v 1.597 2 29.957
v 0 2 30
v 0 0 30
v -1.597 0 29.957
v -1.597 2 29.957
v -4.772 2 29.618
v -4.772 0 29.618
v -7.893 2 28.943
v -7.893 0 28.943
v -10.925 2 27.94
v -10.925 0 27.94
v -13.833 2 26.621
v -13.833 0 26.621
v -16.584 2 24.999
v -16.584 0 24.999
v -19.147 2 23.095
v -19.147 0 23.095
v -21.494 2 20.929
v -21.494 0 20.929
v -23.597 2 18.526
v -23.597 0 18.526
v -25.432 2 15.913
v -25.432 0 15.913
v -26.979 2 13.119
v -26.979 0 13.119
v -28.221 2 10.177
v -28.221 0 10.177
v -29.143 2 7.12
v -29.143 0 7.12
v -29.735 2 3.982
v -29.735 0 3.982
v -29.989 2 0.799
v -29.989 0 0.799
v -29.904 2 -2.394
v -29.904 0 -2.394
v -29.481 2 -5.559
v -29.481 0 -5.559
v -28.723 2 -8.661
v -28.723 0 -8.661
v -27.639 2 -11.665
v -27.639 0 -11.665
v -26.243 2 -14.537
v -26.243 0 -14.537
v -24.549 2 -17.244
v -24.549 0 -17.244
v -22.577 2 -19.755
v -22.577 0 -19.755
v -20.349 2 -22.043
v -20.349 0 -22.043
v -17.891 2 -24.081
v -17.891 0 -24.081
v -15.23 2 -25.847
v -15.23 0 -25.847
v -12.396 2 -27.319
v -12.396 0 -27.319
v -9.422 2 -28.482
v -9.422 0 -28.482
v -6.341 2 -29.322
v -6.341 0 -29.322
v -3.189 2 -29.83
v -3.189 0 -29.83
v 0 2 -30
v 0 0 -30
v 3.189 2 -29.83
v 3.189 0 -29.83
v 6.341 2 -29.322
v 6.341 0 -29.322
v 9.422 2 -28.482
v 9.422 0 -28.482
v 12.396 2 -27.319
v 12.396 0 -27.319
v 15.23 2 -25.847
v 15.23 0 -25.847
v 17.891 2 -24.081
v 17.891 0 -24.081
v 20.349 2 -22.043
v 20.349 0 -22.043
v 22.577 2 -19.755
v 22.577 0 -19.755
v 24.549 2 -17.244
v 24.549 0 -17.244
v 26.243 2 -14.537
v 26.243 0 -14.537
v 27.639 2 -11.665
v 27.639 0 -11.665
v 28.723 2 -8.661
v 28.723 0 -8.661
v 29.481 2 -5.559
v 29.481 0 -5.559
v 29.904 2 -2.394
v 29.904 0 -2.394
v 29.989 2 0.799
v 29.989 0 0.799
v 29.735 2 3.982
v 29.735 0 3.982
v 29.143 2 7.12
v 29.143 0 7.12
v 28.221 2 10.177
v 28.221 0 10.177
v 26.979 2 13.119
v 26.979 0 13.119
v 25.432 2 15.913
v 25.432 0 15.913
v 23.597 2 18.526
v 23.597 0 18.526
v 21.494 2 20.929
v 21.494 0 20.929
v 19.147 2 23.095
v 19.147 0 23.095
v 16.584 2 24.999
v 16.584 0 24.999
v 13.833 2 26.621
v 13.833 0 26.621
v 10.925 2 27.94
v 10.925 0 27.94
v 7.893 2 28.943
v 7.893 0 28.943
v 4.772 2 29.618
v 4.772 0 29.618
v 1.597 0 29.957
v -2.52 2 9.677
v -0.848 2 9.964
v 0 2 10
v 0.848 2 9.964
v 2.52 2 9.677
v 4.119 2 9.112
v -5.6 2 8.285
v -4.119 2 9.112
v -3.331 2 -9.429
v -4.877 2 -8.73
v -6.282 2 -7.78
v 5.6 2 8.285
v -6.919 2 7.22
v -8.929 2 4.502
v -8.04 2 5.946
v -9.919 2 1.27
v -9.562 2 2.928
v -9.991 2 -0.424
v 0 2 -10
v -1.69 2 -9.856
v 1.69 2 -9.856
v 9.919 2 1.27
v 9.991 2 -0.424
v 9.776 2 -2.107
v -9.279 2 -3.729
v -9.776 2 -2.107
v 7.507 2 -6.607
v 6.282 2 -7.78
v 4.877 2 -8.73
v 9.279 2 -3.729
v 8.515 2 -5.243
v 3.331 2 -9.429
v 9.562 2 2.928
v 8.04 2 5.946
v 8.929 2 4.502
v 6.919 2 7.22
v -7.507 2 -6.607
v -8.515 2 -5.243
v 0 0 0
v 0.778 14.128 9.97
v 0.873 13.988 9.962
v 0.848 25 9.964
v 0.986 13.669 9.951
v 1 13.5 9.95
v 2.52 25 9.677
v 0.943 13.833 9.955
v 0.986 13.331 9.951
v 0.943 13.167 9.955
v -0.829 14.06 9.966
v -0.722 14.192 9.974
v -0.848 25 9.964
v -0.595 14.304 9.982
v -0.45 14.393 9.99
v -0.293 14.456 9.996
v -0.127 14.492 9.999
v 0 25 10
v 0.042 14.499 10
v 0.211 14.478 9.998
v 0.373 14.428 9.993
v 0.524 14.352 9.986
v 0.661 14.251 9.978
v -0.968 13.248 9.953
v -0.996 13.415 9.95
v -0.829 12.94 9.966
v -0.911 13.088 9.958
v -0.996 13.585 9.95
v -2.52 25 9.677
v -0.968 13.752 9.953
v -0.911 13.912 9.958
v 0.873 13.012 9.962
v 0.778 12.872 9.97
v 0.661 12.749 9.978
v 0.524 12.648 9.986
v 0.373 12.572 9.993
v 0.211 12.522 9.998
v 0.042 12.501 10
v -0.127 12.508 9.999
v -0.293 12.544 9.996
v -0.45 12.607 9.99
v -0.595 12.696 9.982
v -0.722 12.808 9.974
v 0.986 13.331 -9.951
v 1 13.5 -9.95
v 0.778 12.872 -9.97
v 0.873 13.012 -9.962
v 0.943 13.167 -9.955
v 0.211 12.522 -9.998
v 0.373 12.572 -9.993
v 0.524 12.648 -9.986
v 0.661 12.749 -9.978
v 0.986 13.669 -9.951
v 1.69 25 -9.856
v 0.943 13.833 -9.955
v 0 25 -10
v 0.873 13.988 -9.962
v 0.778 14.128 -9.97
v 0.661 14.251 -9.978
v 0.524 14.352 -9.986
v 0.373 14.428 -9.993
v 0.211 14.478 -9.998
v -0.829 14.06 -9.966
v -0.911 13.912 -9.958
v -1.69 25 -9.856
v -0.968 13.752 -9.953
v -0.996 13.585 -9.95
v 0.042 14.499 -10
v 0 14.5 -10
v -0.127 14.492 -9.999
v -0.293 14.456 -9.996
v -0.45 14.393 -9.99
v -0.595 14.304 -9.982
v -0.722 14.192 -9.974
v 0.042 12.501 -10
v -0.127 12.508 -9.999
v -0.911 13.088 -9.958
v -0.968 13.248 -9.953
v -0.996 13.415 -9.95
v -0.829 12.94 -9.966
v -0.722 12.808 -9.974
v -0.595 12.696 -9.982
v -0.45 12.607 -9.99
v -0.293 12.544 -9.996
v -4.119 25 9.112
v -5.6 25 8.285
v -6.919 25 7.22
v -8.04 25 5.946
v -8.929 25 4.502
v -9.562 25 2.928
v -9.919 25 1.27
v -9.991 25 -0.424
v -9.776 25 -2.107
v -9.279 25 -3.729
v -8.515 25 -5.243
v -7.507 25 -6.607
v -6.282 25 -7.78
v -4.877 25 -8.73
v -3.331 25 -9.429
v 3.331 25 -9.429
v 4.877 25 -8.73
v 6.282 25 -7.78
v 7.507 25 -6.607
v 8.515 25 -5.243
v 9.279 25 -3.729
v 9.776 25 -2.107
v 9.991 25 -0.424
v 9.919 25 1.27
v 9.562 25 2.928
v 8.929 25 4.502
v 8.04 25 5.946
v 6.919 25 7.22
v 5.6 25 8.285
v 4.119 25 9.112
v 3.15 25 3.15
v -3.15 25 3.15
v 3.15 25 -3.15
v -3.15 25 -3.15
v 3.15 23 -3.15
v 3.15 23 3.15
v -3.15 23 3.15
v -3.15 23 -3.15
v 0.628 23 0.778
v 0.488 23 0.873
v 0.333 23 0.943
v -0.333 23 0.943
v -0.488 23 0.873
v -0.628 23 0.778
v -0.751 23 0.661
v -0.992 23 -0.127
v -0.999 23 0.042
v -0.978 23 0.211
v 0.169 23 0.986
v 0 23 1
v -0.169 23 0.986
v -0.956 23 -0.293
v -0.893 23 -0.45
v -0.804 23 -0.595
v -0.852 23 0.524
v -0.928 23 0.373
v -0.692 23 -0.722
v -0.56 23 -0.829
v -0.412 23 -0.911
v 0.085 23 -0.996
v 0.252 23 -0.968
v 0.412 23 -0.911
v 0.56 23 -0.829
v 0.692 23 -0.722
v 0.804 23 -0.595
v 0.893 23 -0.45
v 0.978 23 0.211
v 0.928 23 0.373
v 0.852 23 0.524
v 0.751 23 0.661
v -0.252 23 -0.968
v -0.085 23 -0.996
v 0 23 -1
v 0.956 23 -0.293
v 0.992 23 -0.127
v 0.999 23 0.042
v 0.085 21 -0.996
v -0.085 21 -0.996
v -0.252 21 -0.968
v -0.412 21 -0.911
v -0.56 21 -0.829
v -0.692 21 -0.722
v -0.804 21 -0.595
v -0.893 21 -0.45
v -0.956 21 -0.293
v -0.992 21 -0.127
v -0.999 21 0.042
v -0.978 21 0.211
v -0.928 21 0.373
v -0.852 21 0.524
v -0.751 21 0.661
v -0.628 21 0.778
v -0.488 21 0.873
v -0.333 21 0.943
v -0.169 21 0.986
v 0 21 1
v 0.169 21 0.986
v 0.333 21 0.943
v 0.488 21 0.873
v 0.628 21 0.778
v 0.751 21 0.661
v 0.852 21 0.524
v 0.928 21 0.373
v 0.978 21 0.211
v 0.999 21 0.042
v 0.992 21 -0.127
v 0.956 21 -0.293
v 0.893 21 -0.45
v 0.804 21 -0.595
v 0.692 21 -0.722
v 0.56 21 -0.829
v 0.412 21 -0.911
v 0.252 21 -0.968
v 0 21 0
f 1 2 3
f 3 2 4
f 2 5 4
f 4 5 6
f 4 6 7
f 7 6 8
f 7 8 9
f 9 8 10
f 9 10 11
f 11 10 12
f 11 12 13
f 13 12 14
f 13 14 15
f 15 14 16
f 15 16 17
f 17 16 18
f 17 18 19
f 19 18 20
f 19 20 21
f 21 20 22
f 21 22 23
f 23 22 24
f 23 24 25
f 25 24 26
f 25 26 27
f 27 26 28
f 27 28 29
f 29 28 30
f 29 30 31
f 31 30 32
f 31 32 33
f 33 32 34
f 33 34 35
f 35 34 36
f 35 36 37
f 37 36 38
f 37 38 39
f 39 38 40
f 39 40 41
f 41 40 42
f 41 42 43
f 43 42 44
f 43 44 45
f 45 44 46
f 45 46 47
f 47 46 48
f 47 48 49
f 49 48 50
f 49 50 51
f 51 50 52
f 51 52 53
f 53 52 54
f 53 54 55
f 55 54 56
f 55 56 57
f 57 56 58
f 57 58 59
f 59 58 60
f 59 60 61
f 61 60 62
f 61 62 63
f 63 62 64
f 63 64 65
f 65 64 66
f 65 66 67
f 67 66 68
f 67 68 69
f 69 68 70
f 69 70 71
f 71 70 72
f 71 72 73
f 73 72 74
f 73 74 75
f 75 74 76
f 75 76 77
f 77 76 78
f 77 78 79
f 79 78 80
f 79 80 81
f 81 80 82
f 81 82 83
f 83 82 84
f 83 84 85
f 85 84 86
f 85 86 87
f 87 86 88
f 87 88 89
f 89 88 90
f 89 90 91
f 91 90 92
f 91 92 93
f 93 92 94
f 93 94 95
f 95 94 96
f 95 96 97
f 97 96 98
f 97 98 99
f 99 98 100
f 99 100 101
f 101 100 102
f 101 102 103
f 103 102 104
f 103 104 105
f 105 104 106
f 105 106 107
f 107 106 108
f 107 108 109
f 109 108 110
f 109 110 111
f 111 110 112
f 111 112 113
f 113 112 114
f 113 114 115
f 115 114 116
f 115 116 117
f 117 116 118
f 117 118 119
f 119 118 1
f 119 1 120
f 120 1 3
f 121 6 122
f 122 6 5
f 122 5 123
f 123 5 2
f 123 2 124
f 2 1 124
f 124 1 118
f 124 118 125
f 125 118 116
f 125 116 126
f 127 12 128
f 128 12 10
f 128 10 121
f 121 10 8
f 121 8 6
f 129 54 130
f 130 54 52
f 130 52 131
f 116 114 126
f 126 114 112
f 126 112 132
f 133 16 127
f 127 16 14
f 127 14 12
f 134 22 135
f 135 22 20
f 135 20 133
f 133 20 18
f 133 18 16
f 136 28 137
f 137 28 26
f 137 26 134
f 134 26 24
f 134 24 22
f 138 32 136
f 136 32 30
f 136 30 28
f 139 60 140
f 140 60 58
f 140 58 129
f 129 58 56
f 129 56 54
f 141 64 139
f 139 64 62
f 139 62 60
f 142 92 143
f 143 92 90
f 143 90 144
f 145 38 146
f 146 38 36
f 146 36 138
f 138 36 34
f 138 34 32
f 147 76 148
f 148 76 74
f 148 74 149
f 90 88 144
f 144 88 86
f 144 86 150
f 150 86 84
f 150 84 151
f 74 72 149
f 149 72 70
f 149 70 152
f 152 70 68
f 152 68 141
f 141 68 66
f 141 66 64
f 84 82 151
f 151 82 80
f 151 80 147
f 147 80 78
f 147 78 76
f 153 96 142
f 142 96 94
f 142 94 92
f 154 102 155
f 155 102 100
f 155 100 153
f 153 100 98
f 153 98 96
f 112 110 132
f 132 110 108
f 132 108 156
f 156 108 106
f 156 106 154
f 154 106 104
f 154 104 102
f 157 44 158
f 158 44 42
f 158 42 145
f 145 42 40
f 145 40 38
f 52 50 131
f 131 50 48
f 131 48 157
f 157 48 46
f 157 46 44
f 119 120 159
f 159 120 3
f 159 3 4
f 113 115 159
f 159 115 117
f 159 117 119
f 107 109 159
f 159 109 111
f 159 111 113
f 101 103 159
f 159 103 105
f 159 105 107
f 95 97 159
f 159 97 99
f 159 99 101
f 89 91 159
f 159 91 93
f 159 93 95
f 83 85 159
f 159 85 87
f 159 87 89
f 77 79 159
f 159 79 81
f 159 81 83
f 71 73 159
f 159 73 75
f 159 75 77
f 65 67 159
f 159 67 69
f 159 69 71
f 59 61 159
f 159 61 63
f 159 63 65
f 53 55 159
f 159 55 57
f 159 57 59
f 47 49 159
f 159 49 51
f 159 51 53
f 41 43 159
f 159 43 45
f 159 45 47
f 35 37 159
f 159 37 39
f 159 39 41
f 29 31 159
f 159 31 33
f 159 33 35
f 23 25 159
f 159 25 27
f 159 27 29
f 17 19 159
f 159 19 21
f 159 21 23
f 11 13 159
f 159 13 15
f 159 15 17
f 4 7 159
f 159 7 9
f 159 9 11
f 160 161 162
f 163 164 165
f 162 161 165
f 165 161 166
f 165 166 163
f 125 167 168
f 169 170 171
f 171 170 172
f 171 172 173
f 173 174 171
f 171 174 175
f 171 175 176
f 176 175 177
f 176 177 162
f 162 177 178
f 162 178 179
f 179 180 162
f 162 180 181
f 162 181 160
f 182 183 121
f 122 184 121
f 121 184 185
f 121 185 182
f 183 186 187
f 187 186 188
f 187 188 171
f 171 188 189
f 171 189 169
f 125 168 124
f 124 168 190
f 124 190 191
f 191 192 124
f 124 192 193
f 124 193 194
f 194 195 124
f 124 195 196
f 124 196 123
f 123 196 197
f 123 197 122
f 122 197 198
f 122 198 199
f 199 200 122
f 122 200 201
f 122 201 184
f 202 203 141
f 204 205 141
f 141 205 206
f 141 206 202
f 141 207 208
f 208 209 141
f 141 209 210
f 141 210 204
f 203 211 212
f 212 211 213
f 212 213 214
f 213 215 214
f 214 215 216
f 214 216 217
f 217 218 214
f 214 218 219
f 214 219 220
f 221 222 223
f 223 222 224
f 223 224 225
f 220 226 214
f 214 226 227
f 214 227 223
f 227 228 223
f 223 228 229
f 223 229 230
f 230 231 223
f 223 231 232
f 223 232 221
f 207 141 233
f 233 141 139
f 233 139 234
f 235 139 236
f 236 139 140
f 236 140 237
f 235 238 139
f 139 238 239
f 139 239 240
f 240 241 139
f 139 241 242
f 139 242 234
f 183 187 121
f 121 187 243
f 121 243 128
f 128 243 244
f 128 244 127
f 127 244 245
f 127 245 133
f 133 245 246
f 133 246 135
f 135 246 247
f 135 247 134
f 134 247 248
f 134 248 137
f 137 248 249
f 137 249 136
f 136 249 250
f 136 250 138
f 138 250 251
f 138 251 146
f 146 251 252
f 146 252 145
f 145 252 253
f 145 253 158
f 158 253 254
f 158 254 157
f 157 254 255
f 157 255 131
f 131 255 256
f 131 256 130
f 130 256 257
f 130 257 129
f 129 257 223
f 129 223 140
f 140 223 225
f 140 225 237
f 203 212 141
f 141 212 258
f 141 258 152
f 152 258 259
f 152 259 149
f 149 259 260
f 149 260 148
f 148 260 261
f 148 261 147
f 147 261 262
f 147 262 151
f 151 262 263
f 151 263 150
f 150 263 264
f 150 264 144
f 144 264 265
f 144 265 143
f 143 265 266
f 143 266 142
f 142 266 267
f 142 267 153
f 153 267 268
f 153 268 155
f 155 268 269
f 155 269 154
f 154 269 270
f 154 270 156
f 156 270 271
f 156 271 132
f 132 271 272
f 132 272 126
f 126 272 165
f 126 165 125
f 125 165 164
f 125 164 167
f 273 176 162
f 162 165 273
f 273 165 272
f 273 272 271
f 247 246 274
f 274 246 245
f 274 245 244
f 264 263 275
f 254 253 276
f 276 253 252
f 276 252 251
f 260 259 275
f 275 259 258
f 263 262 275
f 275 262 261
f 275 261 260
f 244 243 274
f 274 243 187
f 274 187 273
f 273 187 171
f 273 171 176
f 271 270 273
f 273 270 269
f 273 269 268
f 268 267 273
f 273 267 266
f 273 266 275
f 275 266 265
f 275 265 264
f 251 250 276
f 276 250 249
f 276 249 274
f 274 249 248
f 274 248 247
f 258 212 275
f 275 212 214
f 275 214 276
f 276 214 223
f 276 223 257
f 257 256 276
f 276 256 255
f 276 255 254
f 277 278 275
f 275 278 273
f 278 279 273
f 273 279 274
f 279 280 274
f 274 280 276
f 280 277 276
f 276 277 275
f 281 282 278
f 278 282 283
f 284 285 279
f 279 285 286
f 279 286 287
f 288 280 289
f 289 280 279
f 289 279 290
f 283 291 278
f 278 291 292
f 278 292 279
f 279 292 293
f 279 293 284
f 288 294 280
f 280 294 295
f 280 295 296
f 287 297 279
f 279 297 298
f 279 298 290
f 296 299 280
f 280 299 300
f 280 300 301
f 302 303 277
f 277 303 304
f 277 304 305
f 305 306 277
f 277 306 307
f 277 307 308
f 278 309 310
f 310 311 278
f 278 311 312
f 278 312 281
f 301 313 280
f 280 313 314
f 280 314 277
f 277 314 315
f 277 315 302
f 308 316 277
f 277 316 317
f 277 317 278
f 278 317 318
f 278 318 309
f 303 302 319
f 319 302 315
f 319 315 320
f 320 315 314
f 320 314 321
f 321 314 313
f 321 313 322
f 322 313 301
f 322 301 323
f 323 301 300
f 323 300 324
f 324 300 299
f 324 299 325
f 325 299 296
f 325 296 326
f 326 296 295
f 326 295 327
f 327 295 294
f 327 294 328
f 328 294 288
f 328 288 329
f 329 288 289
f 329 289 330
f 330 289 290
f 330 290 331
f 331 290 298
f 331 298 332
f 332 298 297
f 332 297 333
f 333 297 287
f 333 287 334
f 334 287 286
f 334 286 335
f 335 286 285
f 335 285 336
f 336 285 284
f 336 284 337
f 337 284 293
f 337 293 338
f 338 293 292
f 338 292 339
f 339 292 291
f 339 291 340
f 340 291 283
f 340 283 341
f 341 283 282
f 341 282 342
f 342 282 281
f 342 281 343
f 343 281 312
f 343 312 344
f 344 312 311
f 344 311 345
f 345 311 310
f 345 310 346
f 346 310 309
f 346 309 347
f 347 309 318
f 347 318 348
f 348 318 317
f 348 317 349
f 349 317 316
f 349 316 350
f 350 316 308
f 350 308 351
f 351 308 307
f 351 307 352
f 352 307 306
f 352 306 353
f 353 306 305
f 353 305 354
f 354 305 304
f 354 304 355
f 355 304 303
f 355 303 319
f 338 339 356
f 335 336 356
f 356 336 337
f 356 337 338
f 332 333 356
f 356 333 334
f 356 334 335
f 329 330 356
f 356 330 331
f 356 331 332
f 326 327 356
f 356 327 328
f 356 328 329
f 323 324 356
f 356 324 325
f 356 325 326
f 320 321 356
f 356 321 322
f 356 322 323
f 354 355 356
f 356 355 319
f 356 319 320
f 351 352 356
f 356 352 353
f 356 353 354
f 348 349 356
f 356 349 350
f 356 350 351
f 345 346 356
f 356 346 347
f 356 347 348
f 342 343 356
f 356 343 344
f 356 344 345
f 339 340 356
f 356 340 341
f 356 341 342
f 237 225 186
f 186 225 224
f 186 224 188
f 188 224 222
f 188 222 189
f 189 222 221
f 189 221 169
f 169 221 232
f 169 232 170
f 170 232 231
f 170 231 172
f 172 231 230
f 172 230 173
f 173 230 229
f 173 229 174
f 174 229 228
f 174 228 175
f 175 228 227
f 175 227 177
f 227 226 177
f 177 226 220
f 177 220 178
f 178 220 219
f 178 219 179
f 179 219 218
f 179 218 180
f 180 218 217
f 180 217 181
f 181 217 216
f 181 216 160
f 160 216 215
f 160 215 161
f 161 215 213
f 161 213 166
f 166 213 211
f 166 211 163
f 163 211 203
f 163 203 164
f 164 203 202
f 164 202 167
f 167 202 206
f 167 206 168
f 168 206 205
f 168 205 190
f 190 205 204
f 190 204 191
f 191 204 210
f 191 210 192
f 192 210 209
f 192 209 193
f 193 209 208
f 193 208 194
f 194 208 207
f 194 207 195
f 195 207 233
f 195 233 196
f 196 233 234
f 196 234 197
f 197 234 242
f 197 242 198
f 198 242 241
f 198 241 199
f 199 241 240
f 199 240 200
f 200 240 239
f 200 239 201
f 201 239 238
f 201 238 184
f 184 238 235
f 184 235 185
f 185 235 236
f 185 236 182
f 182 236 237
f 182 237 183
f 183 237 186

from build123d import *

# Parameters (mm, degrees)
SKETCH_1_R               = 30
EXTRUDE_1_DEPTH          = 2
SKETCH_1_8_R             = 10
EXTRUDE_2_DEPTH          = 25
SKETCH_3_W               = 6.3
SKETCH_3_H               = 6.3
CUT_EXTRUDE_3_DEPTH      = 2
CUT_EXTRUDE_START        = 25
SKETCH_1_9_R             = 1
CUT_EXTRUDE_1_DEPTH      = 4
CUT_EXTRUDE_2_DEPTH      = 50.244289009
CUT_EXTRUDE_2_DEPTH_BACK = 50.244289009
SKETCH_2_R               = 1


with BuildPart() as part:
    # 草图1 → 凸台-拉伸1 (new body)
    with BuildSketch(Plane(origin=(0, 0, 0), x_dir=(1, 0, 0), z_dir=(0, 1, 0))):
        with Locations(Location((0, 0, 0), (0, 0, 270))):
            Circle(SKETCH_1_R)
    extrude(amount=EXTRUDE_1_DEPTH)

    # 草图1<8> → 凸台-拉伸2 (add)
    with BuildSketch(Plane(origin=(0, 0, 0), x_dir=(1, 0, 0), z_dir=(0, 1, 0))):
        with Locations(Location((0, 0, 0), (0, 0, 270))):
            Circle(SKETCH_1_8_R)
    extrude(amount=EXTRUDE_2_DEPTH)

    # 草图3 → 切除-拉伸3 (cut)
    with BuildSketch(Plane(origin=(0, 25, 0), x_dir=(1, 0, 0), z_dir=(0, 1, 0))):
        Rectangle(SKETCH_3_W, SKETCH_3_H)
    extrude(amount=-CUT_EXTRUDE_3_DEPTH, mode=Mode.SUBTRACT)

    # 草图1<9> → 切除-拉伸1 (cut)
    with BuildSketch(Plane(origin=(0, 0, 0), x_dir=(1, 0, 0), z_dir=(0, 1, 0)).offset(CUT_EXTRUDE_START)):
        with Locations(Location((0, 0, 0), (0, 0, 270))):
            Circle(SKETCH_1_9_R)
    extrude(amount=-CUT_EXTRUDE_1_DEPTH, mode=Mode.SUBTRACT)

    # 草图2 → 切除-拉伸2 (cut, two sides: drawn at the far end of the back side and taken through both)
    with BuildSketch(Plane.XY.offset(-CUT_EXTRUDE_2_DEPTH_BACK)):
        with Locations((0, 13.5)):
            Circle(SKETCH_2_R)
    extrude(amount=CUT_EXTRUDE_2_DEPTH + CUT_EXTRUDE_2_DEPTH_BACK, mode=Mode.SUBTRACT)


solid = part.part
